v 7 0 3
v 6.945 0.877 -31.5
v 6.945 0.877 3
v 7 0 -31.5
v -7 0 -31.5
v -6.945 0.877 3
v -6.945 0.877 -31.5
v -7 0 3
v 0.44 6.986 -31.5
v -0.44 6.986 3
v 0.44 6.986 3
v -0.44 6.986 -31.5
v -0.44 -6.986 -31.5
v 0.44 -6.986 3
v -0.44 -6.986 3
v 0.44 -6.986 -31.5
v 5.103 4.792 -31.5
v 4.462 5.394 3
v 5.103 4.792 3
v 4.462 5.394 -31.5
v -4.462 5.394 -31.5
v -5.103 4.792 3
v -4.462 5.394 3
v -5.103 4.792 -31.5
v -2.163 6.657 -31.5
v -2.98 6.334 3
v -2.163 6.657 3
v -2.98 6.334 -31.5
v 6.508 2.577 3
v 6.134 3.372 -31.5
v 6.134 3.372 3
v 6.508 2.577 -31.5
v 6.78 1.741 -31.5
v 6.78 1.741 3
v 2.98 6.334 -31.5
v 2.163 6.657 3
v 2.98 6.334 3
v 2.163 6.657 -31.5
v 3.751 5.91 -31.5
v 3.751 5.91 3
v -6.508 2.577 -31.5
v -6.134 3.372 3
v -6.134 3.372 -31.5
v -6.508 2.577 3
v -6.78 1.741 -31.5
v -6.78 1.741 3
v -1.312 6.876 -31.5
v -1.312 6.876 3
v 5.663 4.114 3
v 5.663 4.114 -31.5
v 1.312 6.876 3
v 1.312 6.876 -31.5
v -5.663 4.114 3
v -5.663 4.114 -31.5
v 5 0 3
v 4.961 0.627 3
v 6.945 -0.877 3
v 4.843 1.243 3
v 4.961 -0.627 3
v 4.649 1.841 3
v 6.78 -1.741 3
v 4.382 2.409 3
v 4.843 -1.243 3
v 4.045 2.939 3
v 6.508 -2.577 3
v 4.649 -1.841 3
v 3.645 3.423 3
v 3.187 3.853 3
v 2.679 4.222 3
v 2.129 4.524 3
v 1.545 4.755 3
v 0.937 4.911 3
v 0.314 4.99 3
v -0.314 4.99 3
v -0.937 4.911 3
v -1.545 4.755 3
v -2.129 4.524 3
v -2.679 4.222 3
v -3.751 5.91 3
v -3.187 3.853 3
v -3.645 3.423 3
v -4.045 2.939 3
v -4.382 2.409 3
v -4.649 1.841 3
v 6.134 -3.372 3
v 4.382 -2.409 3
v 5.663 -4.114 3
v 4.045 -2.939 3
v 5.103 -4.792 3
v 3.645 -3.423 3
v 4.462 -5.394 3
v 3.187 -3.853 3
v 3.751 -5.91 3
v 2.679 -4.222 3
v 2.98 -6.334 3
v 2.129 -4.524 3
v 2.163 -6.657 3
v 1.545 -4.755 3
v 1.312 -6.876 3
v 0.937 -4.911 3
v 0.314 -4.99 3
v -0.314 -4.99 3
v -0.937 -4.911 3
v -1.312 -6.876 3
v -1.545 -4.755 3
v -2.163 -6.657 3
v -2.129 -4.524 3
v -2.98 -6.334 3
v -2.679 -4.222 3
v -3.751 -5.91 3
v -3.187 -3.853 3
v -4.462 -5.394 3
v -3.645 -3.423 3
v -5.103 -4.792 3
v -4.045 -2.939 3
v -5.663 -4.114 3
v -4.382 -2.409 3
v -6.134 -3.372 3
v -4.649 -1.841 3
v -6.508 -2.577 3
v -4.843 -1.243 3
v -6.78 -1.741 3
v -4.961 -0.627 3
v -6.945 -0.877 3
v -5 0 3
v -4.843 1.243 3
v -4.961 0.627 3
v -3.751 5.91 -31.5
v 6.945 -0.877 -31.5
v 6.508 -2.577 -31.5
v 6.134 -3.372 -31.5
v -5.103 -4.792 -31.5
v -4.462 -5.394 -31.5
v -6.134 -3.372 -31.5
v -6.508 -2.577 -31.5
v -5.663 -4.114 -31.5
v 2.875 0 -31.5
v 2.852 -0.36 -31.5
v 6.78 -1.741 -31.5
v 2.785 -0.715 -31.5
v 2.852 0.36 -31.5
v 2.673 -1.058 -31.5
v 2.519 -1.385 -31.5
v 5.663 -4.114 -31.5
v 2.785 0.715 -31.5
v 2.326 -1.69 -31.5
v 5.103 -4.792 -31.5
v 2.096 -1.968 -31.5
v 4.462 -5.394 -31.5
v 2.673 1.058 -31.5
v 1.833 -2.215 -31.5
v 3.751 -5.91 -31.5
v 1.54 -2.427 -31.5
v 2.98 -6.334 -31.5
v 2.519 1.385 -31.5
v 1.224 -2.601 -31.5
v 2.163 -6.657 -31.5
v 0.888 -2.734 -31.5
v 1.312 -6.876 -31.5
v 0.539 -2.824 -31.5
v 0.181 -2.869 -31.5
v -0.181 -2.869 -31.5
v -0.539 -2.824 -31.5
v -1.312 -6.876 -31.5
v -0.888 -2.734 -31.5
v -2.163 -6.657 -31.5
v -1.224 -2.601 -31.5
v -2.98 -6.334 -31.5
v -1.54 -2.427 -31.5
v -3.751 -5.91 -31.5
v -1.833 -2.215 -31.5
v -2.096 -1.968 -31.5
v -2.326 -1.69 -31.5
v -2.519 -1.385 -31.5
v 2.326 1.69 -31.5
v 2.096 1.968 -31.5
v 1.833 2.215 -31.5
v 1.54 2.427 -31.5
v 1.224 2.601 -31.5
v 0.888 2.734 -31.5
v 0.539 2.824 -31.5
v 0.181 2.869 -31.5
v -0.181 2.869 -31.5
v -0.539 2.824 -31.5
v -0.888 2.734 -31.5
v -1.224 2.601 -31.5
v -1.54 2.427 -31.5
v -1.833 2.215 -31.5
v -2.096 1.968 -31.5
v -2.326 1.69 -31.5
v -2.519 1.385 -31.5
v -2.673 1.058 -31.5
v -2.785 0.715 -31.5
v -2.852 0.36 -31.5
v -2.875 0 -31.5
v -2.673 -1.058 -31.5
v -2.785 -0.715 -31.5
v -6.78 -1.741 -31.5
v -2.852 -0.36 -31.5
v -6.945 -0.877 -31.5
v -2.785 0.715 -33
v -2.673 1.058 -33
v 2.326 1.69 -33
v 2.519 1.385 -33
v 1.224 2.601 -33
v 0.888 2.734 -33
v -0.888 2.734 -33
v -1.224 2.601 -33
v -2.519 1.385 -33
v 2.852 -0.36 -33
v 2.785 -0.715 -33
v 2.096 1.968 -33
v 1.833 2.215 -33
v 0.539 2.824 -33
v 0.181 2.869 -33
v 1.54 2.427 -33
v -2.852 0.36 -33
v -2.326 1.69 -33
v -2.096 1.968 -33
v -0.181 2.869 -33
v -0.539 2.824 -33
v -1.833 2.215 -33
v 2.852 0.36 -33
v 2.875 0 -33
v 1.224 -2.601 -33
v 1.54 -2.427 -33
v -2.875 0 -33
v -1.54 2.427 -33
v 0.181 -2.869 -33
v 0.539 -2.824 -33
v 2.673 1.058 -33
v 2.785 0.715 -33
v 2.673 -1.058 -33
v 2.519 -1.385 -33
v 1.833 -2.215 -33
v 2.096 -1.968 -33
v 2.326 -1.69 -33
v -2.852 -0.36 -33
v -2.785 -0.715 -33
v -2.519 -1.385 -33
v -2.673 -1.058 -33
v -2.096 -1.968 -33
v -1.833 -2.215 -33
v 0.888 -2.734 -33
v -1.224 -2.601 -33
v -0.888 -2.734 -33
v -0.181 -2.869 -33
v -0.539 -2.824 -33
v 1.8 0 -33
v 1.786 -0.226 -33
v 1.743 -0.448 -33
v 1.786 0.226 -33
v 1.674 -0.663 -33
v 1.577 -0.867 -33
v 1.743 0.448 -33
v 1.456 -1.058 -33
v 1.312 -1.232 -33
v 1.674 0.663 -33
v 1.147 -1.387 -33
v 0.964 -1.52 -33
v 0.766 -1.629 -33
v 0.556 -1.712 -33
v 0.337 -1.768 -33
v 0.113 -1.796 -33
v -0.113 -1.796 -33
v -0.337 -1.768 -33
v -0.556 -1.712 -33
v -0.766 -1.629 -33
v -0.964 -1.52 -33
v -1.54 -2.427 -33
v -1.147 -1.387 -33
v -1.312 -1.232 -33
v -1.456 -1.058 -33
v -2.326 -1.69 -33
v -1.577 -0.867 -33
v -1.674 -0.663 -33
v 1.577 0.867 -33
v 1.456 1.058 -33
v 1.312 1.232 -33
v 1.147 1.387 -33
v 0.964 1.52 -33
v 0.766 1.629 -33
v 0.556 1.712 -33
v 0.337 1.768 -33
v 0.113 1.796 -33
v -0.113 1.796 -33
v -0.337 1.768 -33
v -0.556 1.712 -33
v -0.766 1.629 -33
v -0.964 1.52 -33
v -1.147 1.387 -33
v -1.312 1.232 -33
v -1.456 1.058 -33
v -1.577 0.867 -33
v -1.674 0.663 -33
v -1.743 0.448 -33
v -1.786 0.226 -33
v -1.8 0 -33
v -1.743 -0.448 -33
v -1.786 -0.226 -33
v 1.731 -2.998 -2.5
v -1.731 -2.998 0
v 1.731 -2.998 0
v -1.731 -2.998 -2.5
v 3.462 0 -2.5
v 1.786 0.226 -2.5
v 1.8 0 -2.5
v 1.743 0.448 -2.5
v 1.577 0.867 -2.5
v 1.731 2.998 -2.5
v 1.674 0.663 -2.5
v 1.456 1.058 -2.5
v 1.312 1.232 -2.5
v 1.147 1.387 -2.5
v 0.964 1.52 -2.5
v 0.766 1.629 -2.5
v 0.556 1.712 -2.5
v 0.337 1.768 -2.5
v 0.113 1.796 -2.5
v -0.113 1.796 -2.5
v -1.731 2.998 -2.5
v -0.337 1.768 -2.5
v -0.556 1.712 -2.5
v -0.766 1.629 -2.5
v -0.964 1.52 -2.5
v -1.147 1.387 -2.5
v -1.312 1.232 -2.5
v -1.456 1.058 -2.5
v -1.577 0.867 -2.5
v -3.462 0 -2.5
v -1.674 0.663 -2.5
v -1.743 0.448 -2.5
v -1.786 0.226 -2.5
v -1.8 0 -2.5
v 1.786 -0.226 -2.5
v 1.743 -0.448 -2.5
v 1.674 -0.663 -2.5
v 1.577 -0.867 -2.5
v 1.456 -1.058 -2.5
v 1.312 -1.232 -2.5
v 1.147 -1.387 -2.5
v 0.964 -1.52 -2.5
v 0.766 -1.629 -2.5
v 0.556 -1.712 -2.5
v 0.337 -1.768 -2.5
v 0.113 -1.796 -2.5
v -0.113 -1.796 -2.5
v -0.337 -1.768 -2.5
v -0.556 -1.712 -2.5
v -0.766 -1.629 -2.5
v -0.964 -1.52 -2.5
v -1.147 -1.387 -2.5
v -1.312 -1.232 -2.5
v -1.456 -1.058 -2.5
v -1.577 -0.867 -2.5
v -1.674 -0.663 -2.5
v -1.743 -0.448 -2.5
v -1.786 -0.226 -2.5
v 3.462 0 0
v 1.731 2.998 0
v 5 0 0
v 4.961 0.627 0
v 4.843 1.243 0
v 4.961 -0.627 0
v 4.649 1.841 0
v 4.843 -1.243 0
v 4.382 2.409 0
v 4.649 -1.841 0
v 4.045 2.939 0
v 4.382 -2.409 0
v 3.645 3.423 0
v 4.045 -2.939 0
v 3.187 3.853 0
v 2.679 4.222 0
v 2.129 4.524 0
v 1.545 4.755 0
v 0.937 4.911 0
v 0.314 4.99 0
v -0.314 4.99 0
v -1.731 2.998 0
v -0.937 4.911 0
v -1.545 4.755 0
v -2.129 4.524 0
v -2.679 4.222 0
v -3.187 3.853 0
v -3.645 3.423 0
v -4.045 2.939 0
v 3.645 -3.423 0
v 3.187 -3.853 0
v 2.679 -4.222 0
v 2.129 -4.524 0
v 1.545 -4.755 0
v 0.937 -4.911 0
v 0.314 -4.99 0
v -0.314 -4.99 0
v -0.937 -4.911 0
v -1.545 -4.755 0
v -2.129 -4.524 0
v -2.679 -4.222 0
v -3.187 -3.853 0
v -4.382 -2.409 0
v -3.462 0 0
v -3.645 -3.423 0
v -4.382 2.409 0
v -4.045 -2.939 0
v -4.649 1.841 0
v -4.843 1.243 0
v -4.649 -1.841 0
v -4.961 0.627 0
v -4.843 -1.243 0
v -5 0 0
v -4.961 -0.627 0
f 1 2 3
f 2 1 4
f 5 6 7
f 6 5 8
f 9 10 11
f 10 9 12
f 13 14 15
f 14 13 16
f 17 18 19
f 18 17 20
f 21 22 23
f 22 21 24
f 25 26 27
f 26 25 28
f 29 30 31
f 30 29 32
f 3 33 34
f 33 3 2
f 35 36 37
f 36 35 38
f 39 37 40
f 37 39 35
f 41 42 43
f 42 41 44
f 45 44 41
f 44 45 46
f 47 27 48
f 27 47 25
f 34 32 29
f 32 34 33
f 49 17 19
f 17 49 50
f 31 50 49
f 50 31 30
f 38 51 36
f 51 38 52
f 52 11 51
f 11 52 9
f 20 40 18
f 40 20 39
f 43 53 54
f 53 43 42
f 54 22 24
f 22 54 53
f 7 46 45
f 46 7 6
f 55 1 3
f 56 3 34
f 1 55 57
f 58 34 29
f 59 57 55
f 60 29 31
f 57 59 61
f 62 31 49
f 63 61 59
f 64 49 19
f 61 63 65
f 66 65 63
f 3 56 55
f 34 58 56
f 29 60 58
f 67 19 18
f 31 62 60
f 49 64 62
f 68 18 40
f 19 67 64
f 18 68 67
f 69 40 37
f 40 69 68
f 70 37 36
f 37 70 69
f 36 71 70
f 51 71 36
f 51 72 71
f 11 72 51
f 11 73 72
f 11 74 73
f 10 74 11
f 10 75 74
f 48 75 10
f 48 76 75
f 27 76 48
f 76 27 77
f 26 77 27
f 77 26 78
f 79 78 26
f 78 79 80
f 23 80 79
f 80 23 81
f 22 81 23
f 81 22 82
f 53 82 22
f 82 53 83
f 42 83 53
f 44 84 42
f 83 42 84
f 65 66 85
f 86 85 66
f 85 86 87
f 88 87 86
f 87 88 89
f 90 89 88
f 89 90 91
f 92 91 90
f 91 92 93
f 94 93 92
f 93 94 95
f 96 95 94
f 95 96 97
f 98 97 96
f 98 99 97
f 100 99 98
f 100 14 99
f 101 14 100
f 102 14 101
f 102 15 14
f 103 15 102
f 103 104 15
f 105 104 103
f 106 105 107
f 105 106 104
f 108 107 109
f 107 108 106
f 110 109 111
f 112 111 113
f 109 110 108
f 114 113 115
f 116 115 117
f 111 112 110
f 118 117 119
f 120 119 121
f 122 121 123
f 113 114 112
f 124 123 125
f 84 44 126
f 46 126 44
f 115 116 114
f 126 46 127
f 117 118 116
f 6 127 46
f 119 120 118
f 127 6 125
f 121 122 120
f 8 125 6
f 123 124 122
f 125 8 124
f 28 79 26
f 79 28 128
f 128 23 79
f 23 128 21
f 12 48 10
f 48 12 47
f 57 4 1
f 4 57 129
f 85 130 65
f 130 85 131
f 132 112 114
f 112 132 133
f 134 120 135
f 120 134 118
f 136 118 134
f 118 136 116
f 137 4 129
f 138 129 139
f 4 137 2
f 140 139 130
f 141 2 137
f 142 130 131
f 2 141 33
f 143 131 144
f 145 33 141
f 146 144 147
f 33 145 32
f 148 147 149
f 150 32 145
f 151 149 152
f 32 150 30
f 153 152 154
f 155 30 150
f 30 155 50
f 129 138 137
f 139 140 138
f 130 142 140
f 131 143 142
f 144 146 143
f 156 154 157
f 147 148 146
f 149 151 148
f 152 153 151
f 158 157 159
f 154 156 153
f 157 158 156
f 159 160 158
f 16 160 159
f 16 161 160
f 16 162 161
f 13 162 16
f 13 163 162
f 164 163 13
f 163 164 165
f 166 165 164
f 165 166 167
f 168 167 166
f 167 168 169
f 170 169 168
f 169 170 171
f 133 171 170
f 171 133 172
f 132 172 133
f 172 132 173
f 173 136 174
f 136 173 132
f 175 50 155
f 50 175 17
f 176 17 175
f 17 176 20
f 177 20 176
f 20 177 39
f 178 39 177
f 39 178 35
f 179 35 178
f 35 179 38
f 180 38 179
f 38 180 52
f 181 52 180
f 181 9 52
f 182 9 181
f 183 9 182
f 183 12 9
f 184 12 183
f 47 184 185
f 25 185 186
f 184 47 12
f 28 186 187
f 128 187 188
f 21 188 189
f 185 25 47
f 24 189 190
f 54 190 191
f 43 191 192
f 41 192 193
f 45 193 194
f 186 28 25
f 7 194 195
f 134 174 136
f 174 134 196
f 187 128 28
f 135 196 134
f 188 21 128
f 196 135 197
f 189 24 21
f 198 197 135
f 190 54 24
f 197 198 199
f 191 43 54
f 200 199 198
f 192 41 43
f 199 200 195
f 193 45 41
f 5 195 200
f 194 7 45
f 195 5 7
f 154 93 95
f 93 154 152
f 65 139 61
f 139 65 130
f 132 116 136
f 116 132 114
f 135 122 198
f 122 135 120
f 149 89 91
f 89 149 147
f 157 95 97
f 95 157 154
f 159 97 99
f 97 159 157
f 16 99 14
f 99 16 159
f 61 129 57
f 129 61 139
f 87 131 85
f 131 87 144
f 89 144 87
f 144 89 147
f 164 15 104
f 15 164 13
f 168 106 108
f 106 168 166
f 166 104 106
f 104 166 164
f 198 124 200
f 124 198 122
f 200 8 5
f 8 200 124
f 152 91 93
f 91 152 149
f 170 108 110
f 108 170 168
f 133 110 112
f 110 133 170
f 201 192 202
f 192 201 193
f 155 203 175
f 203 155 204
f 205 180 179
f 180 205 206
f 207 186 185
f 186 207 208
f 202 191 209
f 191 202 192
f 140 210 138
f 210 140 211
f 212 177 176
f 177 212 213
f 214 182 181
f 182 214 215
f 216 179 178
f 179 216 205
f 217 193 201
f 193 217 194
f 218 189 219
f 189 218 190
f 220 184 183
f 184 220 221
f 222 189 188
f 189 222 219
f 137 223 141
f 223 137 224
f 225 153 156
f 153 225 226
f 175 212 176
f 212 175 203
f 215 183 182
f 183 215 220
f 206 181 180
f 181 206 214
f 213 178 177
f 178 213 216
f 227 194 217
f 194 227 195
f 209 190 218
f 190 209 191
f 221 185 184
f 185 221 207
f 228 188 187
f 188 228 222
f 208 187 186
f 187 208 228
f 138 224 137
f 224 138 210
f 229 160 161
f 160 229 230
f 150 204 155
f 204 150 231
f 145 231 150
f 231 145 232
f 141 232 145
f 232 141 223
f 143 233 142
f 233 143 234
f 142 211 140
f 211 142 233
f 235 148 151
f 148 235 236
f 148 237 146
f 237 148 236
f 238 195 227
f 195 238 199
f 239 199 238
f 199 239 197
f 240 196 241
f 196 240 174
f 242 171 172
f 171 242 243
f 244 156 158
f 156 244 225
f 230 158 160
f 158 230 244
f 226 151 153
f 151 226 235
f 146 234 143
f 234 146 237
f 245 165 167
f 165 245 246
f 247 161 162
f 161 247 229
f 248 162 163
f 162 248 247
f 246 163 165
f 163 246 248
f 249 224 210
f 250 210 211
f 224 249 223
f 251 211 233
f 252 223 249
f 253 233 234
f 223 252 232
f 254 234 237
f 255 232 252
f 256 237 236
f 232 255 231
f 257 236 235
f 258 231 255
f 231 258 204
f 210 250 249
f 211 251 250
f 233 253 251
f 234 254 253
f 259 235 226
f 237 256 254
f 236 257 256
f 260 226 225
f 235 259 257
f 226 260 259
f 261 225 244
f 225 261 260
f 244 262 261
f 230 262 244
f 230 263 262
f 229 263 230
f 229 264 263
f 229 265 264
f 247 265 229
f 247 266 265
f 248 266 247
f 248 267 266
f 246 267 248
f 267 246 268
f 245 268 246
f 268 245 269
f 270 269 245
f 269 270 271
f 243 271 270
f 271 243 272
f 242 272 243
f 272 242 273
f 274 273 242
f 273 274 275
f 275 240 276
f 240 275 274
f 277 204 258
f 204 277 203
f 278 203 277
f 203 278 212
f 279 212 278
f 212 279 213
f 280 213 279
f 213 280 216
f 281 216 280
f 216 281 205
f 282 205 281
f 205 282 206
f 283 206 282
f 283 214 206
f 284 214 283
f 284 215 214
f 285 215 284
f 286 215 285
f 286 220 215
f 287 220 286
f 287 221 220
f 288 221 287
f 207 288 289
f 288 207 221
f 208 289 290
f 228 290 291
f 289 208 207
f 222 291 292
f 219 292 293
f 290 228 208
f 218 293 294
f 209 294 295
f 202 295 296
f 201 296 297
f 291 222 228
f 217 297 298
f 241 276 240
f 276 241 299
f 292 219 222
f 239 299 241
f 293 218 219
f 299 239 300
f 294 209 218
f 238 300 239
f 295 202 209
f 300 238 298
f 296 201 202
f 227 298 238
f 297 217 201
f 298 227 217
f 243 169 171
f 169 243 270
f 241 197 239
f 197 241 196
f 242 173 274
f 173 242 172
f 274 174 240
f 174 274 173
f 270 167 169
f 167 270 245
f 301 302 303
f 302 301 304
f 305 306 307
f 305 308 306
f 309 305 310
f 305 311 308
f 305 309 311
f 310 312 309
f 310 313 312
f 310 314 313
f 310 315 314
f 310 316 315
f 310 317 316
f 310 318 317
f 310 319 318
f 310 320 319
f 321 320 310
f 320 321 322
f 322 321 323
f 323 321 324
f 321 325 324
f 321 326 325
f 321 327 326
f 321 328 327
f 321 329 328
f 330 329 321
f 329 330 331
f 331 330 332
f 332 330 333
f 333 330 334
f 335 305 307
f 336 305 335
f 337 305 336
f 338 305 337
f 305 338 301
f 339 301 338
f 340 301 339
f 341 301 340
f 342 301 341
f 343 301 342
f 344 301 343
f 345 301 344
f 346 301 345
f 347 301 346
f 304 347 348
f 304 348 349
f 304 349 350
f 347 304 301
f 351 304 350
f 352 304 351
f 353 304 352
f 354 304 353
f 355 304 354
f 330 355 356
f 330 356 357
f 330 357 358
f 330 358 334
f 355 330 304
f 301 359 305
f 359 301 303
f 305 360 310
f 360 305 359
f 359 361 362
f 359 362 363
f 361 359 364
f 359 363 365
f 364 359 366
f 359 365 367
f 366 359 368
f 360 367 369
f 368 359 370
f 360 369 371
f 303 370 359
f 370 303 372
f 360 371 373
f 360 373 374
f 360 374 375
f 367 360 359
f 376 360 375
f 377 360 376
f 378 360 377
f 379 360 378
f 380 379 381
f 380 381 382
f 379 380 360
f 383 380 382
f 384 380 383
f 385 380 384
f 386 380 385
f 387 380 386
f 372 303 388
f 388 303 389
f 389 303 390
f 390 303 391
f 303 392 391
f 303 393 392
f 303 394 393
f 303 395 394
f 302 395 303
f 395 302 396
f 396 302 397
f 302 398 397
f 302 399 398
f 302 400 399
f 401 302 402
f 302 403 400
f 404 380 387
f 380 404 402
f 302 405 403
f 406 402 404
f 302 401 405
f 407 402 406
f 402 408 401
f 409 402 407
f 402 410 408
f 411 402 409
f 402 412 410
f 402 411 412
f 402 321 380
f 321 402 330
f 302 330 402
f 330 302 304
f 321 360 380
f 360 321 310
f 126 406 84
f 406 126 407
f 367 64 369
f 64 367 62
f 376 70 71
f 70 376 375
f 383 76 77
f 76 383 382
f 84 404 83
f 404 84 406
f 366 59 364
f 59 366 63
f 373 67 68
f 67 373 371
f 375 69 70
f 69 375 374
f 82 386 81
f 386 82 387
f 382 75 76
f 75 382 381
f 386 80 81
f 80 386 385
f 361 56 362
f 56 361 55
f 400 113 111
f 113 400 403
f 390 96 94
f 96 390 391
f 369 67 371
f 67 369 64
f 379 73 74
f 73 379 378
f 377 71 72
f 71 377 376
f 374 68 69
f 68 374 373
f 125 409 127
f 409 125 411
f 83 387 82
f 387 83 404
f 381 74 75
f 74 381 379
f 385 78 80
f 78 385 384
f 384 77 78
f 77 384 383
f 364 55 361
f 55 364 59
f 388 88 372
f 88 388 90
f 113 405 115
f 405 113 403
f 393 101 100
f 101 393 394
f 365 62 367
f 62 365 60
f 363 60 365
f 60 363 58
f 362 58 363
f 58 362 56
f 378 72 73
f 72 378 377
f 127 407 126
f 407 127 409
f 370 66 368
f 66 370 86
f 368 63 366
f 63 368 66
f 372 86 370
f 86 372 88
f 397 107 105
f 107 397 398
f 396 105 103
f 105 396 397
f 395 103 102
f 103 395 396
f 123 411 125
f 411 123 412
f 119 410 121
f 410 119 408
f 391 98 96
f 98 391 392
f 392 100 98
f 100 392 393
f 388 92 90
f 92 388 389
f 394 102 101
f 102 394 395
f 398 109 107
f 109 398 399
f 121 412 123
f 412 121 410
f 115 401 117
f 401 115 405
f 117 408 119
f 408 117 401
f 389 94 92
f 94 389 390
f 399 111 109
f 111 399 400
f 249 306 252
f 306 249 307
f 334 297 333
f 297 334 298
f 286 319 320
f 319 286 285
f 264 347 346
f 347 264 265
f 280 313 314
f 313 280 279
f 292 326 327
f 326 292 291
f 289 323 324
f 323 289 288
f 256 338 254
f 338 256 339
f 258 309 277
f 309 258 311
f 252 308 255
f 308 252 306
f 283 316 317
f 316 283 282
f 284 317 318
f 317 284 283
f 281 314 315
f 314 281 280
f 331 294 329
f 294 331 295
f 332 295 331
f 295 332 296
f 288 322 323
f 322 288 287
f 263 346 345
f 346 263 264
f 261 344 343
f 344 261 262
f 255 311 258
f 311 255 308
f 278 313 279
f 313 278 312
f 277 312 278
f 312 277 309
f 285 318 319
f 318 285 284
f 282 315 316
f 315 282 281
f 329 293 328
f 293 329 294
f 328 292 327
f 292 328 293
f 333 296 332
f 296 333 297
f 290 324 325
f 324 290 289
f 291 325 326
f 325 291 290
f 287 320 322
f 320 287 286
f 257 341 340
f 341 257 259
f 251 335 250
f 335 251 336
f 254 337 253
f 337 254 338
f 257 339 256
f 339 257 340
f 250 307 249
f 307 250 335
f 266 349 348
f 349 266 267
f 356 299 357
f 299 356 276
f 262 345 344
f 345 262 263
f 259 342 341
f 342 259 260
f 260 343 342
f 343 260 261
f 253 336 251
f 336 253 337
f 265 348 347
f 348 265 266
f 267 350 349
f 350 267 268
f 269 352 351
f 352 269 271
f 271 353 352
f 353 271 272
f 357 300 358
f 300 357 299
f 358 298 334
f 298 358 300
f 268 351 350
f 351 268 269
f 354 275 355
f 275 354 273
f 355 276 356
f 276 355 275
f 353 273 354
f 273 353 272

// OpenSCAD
$fn = 50;

difference() {
	union() {
		translate(v = [0, 0, -31.5]) {
			cylinder(h = 34.5, r = 7.0);
		}
		#translate(v = [0, 0, -33.0]) {
			cylinder(h = 33, r = 2.875);
		}
	}
	union() {
		translate(v = [0, 0, 0]) {
			rotate(a = [0, 0, 0]) {
				difference() {
					union() {
						translate(v = [0, 0, -2.5]) {
							linear_extrude(height = 2.5) {
								polygon(points = [[3.4619999999999997, 0.0], [1.7310000000000003, 2.9981799479017264], [-1.7309999999999992, 2.9981799479017264], [-3.4619999999999997, 4.2397272186481365e-16], [-1.7310000000000014, -2.998179947901726], [1.7309999999999977, -2.9981799479017277]]);
							}
						}
					}
					union();
				}
			}
		}
		#cylinder(h = 3, r = 5.0);
		#translate(v = [0, 0, -100.0]) {
			cylinder(h = 200, r = 1.8);
		}
	}
}
